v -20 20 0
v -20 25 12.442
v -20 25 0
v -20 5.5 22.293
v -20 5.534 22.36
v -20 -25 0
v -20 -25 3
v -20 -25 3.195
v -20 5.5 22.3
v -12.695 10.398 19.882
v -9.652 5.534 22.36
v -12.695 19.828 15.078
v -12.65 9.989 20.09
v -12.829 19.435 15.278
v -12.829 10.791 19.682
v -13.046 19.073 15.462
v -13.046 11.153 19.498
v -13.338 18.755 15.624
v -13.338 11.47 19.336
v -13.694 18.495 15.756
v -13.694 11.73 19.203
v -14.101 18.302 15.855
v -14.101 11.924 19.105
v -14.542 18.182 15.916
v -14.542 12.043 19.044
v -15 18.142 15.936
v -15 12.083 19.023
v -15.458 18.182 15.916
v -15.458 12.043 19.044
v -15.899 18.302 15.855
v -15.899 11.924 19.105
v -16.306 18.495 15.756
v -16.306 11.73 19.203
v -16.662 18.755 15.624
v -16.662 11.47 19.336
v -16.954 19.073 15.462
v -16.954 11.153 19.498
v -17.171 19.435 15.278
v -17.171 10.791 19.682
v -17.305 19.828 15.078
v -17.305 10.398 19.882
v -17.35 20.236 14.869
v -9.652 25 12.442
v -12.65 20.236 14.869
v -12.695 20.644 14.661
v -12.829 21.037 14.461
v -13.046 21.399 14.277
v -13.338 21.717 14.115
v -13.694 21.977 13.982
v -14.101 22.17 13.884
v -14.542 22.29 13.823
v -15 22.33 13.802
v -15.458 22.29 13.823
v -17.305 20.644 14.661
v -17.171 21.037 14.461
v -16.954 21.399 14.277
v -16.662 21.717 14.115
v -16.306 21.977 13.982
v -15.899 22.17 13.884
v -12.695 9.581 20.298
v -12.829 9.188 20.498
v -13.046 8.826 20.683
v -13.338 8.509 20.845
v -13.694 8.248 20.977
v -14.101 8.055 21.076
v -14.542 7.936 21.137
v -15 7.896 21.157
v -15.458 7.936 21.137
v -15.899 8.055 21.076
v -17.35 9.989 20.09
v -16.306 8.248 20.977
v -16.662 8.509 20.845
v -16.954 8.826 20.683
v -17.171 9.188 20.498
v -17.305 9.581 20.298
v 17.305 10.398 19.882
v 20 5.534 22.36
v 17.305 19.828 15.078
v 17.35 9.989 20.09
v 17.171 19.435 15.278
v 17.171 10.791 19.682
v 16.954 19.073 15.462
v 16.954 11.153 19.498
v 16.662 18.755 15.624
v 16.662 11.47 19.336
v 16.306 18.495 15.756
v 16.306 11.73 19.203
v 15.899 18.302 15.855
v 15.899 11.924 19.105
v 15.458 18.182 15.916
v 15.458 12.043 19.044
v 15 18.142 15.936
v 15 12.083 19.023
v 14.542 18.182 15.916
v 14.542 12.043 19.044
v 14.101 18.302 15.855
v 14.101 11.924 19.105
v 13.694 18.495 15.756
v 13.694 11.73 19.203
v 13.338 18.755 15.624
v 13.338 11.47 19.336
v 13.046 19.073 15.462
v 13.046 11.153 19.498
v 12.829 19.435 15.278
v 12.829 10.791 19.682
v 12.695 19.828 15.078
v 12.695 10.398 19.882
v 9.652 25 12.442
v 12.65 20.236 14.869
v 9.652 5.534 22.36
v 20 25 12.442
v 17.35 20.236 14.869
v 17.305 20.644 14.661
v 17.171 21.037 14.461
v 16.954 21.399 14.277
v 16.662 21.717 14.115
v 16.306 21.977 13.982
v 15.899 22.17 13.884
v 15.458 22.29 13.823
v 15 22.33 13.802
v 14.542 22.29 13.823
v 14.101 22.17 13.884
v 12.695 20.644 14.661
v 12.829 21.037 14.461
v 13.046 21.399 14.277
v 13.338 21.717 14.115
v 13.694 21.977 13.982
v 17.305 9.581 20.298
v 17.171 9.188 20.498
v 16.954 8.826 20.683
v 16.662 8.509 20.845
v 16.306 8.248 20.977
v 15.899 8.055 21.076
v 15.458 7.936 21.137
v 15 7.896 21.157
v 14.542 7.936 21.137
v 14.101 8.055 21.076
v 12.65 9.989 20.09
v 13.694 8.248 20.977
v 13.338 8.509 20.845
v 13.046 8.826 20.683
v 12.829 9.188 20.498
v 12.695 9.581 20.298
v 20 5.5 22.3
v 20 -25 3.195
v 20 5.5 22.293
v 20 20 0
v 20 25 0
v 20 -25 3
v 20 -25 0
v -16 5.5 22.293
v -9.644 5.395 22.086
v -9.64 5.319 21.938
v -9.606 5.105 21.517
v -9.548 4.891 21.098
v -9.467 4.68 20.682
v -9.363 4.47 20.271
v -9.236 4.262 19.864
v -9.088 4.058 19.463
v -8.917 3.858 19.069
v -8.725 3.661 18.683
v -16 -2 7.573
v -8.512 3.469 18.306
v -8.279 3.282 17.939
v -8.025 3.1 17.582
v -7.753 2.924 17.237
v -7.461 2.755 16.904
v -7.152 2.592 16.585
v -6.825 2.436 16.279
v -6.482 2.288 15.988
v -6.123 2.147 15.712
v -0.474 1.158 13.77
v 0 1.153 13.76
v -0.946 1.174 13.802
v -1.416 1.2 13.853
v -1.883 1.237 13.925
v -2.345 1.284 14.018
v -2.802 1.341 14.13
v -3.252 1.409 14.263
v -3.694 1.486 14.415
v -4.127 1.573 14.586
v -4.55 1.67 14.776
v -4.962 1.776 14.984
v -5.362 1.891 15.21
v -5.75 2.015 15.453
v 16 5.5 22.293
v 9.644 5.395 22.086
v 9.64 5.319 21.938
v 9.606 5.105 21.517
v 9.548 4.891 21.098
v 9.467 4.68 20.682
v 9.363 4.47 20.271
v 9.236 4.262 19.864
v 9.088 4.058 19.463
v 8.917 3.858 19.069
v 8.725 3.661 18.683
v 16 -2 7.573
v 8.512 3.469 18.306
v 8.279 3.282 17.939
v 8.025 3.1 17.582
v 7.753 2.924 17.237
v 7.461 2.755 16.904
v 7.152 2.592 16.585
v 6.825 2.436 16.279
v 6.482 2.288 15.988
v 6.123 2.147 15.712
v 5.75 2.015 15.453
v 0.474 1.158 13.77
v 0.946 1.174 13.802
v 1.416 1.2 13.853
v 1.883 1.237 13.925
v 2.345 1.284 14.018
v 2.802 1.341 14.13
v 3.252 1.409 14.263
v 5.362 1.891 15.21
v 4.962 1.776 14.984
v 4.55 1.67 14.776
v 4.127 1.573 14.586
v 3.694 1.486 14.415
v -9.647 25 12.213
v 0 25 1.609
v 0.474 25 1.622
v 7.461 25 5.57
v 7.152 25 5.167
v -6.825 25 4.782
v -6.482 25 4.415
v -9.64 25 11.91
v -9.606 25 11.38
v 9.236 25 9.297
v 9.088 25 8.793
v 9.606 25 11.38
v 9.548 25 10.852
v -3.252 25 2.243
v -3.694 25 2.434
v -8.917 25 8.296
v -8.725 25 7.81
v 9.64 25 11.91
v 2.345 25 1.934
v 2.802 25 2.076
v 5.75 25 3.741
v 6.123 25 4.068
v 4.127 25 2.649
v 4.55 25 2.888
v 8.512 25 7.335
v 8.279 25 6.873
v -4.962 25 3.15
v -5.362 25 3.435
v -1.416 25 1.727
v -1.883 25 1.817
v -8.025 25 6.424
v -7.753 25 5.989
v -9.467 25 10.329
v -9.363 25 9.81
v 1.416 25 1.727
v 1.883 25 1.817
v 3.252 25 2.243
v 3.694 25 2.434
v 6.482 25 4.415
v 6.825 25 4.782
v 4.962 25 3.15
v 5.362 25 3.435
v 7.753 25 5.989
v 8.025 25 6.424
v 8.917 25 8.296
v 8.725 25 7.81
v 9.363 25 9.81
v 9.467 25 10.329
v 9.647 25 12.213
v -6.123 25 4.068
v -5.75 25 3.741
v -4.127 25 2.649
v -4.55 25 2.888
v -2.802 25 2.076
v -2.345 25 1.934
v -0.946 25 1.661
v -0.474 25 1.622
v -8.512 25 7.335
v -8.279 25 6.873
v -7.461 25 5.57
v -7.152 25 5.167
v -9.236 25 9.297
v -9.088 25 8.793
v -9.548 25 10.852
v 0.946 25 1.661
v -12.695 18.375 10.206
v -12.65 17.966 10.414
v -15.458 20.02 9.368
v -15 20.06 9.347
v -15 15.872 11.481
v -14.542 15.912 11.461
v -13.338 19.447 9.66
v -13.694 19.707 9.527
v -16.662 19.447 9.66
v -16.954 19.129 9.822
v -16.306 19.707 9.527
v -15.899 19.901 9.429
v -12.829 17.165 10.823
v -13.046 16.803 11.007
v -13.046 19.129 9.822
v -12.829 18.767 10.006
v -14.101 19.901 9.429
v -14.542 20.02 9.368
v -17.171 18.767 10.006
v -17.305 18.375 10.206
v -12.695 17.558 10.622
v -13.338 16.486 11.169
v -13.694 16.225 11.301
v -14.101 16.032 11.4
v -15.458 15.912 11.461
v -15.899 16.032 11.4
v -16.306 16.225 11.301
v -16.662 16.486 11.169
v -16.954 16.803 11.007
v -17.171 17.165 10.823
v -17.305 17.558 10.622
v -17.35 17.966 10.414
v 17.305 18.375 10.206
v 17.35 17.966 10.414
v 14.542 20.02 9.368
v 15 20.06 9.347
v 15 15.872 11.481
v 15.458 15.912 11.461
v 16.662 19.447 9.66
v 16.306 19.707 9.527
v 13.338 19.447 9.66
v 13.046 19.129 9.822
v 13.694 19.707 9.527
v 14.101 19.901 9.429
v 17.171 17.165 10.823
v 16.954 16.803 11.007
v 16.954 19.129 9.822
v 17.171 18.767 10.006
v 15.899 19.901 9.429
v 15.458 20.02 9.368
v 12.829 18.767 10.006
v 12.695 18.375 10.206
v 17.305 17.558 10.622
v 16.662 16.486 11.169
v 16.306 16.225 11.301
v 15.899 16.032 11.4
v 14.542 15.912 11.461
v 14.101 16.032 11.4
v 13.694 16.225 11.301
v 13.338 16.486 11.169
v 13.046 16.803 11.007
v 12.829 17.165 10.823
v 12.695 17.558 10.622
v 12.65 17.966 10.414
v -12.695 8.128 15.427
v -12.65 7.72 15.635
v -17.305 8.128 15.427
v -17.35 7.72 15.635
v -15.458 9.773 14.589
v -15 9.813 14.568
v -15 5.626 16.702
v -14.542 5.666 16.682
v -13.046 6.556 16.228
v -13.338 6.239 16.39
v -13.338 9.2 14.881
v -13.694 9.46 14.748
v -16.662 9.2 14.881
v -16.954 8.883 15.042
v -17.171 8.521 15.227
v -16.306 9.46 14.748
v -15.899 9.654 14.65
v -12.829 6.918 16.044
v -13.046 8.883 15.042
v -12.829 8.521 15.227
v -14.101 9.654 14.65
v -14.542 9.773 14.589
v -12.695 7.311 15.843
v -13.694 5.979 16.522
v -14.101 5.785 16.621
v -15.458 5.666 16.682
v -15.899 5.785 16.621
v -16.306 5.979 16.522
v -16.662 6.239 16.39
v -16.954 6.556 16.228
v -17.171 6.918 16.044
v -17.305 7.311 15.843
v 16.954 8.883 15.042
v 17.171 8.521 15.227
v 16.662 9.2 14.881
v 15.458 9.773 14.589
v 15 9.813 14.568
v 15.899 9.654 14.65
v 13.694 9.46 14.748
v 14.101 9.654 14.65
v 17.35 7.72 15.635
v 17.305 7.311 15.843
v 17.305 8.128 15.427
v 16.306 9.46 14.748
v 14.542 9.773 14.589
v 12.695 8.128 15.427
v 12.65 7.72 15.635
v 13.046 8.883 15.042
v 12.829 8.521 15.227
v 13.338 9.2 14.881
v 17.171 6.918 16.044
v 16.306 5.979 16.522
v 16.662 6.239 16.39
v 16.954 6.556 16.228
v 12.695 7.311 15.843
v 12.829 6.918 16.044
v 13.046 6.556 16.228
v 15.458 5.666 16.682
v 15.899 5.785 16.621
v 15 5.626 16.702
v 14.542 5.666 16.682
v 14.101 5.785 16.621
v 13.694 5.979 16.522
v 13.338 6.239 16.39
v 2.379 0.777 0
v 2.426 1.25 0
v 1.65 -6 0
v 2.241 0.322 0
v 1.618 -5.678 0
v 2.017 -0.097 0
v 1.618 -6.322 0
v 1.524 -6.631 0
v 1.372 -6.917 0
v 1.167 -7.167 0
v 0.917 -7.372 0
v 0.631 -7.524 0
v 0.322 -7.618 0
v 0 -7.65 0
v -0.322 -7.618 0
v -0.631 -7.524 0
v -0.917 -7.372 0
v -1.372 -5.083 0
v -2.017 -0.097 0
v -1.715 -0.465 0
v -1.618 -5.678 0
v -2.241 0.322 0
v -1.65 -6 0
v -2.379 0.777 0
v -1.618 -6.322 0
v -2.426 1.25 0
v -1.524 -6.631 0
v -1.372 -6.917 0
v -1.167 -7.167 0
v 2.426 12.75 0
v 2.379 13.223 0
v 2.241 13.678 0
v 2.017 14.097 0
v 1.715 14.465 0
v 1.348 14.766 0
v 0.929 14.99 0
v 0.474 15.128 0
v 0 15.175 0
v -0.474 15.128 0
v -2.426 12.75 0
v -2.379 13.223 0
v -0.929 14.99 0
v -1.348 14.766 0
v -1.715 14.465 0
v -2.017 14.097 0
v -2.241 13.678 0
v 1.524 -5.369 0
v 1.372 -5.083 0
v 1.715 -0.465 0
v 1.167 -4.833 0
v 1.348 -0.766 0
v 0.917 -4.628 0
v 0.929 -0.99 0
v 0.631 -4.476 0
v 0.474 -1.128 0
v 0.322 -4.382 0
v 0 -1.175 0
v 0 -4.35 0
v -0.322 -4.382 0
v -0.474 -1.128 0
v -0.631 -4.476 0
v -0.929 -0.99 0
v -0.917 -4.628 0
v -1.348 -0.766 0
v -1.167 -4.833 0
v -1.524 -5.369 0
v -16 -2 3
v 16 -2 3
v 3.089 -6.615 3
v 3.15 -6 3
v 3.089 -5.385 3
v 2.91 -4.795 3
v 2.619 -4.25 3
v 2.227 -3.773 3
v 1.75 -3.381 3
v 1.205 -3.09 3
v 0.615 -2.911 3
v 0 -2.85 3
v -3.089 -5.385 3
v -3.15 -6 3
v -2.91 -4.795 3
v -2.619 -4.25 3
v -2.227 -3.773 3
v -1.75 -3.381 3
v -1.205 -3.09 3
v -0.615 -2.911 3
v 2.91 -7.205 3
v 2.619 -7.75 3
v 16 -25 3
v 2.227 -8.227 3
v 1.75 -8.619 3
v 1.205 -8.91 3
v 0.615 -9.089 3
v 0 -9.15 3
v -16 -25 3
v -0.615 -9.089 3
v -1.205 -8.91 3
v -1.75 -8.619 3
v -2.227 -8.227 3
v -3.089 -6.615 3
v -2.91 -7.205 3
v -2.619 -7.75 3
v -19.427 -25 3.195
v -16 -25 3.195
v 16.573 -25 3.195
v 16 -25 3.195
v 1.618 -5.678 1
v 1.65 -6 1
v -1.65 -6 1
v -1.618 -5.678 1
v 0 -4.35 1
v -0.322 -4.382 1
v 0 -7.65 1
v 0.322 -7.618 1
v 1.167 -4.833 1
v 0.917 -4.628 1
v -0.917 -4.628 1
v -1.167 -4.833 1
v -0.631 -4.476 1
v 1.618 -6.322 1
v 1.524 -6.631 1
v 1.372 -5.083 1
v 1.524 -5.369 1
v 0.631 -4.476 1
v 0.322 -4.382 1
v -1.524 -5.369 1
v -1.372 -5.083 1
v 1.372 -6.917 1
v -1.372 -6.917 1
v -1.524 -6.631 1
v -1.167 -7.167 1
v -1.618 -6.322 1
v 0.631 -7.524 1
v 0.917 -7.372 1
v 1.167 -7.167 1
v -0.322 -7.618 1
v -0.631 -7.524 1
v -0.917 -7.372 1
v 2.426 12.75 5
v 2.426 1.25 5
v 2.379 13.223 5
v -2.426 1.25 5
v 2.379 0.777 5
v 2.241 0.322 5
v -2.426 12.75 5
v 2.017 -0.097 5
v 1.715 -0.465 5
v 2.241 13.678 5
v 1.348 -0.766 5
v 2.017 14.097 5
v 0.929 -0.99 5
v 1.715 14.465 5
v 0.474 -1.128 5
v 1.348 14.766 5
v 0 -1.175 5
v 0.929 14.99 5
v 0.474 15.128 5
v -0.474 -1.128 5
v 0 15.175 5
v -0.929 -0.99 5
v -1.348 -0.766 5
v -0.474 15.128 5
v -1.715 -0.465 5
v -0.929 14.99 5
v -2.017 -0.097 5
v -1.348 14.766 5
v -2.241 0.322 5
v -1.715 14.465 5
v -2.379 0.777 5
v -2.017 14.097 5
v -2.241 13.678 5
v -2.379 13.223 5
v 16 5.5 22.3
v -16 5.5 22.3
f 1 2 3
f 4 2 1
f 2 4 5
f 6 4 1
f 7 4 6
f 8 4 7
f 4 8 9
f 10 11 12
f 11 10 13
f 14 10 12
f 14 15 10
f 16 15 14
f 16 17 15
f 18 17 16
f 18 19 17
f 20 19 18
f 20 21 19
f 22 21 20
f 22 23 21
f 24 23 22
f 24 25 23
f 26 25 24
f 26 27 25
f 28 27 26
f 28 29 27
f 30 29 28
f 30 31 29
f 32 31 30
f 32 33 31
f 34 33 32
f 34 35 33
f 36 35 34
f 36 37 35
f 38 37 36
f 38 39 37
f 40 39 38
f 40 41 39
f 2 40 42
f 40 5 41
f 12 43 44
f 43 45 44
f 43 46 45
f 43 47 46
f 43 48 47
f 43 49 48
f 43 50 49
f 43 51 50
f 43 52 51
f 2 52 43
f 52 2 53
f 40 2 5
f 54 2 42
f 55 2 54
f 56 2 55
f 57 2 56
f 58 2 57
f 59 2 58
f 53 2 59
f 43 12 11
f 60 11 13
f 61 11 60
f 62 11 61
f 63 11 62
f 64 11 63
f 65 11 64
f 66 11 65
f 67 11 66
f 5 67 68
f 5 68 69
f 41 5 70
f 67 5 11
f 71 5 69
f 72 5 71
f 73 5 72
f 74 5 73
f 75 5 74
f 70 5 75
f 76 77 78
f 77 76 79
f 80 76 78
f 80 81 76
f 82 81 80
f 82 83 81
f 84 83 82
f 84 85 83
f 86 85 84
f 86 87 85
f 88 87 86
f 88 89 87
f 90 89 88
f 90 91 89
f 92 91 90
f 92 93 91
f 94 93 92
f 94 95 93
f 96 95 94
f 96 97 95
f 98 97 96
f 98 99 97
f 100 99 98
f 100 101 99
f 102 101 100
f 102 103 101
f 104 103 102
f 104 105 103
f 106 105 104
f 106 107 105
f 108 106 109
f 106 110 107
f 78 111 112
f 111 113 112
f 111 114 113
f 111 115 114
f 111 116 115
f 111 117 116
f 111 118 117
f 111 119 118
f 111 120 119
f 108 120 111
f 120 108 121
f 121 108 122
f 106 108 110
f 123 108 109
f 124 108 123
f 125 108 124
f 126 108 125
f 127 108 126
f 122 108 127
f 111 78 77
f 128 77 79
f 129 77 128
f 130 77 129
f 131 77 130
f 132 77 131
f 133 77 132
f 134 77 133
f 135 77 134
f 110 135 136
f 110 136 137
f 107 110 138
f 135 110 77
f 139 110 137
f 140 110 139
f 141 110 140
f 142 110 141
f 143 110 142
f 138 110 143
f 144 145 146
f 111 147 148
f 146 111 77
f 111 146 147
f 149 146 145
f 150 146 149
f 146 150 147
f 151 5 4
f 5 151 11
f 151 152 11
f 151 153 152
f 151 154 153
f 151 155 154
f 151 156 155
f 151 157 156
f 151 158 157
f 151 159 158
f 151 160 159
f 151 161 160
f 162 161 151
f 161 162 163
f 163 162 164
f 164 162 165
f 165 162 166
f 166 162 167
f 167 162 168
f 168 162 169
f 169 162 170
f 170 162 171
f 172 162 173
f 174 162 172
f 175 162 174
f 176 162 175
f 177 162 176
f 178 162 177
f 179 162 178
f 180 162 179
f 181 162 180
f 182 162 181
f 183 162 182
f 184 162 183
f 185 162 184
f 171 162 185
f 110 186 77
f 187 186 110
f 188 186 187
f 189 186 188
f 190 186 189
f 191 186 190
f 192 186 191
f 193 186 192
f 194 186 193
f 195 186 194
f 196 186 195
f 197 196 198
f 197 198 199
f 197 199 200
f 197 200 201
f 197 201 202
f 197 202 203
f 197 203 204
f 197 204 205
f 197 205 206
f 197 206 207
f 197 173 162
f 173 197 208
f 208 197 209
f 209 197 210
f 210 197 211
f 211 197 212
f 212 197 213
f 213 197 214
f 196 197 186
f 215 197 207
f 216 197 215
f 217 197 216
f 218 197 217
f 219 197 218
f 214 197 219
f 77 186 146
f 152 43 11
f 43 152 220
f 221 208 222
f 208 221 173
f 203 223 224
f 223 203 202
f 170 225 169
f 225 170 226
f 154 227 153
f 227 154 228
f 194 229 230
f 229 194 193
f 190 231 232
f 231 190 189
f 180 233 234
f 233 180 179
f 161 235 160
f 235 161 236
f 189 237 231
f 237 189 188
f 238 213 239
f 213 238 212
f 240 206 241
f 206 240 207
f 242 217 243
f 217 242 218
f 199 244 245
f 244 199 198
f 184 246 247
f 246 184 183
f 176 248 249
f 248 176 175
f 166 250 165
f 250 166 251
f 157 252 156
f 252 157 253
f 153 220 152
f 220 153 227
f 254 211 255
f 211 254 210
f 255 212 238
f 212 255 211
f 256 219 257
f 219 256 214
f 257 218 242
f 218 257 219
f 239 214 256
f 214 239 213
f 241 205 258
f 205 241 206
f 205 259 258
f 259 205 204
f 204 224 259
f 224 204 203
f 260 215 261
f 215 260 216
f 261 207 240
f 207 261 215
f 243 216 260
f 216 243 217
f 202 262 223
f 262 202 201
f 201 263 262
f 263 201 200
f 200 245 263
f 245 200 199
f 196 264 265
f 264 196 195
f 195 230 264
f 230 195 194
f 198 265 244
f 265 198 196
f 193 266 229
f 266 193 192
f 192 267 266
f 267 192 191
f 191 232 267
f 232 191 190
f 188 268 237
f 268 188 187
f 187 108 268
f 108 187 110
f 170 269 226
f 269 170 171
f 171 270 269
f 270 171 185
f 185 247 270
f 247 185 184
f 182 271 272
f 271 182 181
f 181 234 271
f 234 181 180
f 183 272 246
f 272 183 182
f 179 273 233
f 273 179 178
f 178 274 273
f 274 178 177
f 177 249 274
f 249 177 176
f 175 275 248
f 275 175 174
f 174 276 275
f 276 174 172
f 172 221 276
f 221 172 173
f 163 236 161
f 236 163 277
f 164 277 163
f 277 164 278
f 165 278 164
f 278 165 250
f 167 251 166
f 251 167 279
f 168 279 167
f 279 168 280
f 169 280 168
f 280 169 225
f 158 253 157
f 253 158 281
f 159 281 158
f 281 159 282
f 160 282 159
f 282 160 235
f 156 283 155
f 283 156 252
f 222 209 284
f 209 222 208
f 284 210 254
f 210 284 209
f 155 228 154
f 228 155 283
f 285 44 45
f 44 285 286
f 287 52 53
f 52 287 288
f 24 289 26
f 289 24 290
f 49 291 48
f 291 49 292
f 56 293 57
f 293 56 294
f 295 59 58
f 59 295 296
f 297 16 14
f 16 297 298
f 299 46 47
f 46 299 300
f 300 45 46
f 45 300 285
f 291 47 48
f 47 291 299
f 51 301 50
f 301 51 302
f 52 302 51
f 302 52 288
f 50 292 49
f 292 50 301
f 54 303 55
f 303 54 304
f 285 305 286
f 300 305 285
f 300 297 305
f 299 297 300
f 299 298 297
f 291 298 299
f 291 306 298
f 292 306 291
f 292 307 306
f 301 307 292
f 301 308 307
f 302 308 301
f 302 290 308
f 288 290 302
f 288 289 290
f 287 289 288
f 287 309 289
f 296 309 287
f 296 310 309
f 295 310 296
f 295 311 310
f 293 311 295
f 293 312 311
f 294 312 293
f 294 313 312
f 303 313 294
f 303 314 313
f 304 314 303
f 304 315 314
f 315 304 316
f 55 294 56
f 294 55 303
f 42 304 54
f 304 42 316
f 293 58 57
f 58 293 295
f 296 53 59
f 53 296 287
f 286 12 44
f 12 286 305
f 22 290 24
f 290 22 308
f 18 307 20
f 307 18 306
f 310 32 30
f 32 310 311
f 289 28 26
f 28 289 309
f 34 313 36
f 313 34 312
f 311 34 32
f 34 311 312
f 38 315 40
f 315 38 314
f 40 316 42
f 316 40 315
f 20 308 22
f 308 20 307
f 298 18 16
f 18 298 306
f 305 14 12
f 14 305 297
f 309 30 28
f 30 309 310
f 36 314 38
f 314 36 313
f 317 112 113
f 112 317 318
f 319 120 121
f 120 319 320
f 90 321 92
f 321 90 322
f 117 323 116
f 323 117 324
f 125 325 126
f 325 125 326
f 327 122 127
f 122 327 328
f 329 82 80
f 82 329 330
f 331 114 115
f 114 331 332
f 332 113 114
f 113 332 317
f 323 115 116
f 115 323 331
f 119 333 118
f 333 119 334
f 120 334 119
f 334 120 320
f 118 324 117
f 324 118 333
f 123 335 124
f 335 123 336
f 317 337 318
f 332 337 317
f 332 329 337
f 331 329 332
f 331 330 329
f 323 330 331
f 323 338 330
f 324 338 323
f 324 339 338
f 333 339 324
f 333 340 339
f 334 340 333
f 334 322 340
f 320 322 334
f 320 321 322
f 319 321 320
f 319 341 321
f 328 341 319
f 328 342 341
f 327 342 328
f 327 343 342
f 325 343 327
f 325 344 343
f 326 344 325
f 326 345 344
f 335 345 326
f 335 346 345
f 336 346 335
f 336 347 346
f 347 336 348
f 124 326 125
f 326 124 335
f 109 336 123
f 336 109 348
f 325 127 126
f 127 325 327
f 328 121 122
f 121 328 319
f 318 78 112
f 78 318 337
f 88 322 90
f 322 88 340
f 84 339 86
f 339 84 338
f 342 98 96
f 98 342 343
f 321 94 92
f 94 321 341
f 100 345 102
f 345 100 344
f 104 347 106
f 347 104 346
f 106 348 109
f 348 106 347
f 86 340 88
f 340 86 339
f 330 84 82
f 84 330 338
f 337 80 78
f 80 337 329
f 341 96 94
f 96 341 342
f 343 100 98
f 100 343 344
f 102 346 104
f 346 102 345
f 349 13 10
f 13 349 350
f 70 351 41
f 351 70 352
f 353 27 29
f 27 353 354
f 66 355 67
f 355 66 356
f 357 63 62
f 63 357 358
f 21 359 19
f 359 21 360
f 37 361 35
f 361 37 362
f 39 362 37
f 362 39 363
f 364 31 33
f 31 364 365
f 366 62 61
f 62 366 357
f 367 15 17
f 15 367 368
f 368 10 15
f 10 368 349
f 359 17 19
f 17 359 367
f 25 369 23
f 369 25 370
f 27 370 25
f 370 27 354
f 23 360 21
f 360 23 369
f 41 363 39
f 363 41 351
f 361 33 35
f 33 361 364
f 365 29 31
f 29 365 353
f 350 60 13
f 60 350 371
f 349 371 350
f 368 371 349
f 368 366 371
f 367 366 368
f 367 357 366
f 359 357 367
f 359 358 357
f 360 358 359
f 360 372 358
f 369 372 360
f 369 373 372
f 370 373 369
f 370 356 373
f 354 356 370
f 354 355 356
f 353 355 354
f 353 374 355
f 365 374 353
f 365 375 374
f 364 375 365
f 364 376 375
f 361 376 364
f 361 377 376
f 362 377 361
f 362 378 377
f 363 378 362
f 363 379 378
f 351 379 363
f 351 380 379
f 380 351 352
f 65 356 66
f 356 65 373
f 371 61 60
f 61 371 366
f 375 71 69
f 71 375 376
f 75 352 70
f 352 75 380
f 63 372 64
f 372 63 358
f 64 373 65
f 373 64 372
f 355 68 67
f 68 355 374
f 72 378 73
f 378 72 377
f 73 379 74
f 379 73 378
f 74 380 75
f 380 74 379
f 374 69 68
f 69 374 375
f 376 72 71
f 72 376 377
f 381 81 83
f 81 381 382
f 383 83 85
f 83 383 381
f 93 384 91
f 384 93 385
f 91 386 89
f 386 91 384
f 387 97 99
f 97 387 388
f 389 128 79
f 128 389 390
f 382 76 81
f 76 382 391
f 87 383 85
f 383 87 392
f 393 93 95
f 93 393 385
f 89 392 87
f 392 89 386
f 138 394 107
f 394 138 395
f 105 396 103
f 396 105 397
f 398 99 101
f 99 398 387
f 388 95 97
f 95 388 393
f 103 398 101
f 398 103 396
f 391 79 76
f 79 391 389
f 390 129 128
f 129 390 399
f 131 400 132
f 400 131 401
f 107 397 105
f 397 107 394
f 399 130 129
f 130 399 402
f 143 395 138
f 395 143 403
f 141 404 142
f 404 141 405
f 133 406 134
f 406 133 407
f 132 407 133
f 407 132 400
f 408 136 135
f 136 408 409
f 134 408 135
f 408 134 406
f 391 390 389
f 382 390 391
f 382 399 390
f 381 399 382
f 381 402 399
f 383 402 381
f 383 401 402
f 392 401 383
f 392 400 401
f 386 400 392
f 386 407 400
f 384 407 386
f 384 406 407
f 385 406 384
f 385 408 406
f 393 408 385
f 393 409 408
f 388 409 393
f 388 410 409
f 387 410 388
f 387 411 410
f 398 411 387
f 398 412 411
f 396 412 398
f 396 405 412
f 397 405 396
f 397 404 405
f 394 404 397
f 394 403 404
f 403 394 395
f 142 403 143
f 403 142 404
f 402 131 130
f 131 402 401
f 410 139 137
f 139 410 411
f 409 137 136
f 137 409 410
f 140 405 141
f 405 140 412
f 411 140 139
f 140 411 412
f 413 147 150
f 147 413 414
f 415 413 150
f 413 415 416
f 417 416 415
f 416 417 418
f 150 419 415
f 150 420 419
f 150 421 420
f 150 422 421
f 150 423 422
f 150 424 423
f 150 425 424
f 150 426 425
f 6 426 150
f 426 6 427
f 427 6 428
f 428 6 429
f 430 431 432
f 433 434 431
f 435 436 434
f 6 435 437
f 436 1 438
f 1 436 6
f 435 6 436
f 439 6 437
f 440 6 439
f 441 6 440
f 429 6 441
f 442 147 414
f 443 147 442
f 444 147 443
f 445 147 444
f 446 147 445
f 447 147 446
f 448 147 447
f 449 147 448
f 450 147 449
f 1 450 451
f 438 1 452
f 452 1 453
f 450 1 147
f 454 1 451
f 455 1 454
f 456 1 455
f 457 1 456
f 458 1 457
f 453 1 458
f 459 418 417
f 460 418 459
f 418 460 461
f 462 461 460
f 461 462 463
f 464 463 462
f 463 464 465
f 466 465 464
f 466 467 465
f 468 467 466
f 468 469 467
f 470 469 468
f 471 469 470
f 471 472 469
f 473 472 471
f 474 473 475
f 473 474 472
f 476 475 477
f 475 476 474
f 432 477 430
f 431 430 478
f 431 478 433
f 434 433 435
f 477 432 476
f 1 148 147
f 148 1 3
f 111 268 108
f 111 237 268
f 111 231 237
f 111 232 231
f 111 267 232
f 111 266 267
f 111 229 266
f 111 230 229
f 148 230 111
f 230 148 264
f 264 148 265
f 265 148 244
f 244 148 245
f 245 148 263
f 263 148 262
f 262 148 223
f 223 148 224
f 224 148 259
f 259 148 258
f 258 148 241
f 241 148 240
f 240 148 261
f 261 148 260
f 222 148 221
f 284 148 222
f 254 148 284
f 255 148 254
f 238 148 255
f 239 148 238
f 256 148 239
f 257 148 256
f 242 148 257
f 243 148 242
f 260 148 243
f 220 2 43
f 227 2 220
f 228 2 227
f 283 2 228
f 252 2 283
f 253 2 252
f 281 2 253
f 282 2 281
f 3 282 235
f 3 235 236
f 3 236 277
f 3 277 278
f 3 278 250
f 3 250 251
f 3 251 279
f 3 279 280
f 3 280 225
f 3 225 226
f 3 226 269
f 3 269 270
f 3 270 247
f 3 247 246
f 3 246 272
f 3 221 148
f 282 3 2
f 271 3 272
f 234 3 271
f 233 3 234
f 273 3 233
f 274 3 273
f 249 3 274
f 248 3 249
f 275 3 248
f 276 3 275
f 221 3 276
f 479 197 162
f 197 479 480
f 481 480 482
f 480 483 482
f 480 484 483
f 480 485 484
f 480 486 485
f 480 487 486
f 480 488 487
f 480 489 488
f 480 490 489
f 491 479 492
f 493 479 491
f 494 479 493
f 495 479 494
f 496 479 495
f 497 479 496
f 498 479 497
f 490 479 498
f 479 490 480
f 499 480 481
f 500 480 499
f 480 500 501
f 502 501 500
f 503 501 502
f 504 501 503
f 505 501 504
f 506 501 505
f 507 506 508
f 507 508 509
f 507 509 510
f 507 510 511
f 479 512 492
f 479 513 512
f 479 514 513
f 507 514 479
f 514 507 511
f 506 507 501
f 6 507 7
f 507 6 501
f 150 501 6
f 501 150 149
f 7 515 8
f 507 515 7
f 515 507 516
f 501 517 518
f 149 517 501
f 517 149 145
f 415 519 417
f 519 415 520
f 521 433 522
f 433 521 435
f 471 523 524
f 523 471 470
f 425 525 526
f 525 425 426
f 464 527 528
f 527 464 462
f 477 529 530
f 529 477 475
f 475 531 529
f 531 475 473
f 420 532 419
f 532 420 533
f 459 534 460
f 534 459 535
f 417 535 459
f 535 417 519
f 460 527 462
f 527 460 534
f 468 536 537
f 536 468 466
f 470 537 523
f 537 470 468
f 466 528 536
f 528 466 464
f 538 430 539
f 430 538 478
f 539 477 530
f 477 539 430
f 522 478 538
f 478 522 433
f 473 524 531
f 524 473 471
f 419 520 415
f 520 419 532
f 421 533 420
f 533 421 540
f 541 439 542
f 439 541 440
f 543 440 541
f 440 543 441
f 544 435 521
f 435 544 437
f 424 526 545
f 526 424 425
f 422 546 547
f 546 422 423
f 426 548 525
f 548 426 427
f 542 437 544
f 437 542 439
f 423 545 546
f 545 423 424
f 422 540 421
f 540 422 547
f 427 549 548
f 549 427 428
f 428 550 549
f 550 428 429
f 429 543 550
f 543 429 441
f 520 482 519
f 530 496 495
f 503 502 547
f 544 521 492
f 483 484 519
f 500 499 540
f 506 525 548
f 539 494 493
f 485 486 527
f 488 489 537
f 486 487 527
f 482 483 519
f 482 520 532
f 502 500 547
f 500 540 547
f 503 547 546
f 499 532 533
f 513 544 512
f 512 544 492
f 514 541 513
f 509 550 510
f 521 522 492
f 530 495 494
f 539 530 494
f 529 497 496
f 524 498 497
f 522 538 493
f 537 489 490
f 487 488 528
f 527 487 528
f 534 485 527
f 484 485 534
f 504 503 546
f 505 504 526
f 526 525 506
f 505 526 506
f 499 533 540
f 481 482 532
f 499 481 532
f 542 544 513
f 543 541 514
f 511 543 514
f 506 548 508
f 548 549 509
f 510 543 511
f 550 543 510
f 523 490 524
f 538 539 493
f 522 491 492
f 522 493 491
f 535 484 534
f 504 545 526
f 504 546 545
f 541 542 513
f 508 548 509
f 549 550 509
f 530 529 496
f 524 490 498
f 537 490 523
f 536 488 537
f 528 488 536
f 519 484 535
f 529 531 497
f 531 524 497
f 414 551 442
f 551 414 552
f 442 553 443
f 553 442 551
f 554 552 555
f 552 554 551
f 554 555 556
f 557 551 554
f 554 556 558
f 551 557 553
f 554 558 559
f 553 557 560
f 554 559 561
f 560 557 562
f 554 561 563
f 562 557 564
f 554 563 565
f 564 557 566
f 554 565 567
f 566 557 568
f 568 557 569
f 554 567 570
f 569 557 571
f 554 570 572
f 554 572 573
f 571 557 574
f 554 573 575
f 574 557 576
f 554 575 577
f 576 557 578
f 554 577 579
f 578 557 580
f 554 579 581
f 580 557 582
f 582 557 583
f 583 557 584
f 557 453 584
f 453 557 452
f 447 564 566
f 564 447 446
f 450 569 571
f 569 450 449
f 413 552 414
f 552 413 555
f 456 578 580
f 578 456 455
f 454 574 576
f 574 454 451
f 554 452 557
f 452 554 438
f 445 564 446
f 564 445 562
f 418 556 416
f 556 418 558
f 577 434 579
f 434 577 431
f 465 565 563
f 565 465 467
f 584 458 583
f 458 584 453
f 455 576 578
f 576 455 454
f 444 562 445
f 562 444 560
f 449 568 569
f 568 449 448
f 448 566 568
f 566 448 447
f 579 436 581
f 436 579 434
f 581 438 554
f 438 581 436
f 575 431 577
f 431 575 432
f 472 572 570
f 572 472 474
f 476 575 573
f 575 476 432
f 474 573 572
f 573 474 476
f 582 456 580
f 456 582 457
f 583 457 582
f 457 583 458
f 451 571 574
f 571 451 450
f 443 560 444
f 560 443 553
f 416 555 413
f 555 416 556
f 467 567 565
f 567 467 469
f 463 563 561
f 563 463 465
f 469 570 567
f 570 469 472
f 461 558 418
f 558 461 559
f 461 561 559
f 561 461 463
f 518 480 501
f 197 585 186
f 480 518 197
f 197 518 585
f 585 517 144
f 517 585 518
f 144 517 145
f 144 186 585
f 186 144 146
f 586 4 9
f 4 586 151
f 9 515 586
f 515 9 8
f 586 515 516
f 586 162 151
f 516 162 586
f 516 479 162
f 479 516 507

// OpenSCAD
difference() {
    union() {
        translate([0,-2.5,0])
    cube_center([40,45,3]);

difference() {
    translate([0,-3.8,-29])
    tilt_block();
    
    scale([1,1,-1])
    cube_center([100,100,100]);
    
    translate([0,50+25,0])
    cube_center([100,100,100]);
    
    
    translate([0,-50-2,0])
    cube_center([100,100,100]);
}


}

    translate([0,-6,0])
    cylinder(d=3.3,h=50,$fn=32);

    translate([0,-6,1])
    cylinder(d=3.3,d2=6.3,h=2,$fn=32);


    minkowski() {
    translate([0,-6+13,0])
    cylinder(d=4.85,h=5,$fn=32);
        
    cube([0.001,17-5.5,0.001], center=true);
    }
}

difference() {
    union() {
translate([20-2,5.5,0])
scale([4,35.6,22.3])
rotate([0,0,90])
triangle();
        
translate([-20+2,5.5,0])
scale([4,35.6,22.3])
rotate([0,0,90])
triangle();
    }
    
    
    translate([0,-50-25,0])
    cube_center([100,100,100]);
}

module triangle() {
scale([1,1,1])
rotate([0,-90,90])
linear_extrude(height = 1, center = true, convexity = 10, twist = 0)
polygon(points=[[0,0],[1,0],[0,1]]);
}

module tilt_block() {
rotate([-27,0,0]) {
difference() {
    cube_center([40,30,50]);
    translate([0,0,50])
    rotate([90,0,0])
    cylinder(d=0.76*25.4,h=100,center=true,$fn=128);
    
    translate([-15,1.5,50-5])
    cylinder(d=4.7,h=50,$fn=32);
    translate([15,1.5,50-5])
    cylinder(d=4.7,h=50,$fn=32);
    translate([-15,-10,50-5])
    cylinder(d=4.7,h=50,$fn=32);
    translate([15,-10,50-5])
    cylinder(d=4.7,h=50,$fn=32);
}

}
}


module cube_center(dims) {
    translate([-dims[0]/2, -dims[1]/2, 0])
    cube(dims);
}
